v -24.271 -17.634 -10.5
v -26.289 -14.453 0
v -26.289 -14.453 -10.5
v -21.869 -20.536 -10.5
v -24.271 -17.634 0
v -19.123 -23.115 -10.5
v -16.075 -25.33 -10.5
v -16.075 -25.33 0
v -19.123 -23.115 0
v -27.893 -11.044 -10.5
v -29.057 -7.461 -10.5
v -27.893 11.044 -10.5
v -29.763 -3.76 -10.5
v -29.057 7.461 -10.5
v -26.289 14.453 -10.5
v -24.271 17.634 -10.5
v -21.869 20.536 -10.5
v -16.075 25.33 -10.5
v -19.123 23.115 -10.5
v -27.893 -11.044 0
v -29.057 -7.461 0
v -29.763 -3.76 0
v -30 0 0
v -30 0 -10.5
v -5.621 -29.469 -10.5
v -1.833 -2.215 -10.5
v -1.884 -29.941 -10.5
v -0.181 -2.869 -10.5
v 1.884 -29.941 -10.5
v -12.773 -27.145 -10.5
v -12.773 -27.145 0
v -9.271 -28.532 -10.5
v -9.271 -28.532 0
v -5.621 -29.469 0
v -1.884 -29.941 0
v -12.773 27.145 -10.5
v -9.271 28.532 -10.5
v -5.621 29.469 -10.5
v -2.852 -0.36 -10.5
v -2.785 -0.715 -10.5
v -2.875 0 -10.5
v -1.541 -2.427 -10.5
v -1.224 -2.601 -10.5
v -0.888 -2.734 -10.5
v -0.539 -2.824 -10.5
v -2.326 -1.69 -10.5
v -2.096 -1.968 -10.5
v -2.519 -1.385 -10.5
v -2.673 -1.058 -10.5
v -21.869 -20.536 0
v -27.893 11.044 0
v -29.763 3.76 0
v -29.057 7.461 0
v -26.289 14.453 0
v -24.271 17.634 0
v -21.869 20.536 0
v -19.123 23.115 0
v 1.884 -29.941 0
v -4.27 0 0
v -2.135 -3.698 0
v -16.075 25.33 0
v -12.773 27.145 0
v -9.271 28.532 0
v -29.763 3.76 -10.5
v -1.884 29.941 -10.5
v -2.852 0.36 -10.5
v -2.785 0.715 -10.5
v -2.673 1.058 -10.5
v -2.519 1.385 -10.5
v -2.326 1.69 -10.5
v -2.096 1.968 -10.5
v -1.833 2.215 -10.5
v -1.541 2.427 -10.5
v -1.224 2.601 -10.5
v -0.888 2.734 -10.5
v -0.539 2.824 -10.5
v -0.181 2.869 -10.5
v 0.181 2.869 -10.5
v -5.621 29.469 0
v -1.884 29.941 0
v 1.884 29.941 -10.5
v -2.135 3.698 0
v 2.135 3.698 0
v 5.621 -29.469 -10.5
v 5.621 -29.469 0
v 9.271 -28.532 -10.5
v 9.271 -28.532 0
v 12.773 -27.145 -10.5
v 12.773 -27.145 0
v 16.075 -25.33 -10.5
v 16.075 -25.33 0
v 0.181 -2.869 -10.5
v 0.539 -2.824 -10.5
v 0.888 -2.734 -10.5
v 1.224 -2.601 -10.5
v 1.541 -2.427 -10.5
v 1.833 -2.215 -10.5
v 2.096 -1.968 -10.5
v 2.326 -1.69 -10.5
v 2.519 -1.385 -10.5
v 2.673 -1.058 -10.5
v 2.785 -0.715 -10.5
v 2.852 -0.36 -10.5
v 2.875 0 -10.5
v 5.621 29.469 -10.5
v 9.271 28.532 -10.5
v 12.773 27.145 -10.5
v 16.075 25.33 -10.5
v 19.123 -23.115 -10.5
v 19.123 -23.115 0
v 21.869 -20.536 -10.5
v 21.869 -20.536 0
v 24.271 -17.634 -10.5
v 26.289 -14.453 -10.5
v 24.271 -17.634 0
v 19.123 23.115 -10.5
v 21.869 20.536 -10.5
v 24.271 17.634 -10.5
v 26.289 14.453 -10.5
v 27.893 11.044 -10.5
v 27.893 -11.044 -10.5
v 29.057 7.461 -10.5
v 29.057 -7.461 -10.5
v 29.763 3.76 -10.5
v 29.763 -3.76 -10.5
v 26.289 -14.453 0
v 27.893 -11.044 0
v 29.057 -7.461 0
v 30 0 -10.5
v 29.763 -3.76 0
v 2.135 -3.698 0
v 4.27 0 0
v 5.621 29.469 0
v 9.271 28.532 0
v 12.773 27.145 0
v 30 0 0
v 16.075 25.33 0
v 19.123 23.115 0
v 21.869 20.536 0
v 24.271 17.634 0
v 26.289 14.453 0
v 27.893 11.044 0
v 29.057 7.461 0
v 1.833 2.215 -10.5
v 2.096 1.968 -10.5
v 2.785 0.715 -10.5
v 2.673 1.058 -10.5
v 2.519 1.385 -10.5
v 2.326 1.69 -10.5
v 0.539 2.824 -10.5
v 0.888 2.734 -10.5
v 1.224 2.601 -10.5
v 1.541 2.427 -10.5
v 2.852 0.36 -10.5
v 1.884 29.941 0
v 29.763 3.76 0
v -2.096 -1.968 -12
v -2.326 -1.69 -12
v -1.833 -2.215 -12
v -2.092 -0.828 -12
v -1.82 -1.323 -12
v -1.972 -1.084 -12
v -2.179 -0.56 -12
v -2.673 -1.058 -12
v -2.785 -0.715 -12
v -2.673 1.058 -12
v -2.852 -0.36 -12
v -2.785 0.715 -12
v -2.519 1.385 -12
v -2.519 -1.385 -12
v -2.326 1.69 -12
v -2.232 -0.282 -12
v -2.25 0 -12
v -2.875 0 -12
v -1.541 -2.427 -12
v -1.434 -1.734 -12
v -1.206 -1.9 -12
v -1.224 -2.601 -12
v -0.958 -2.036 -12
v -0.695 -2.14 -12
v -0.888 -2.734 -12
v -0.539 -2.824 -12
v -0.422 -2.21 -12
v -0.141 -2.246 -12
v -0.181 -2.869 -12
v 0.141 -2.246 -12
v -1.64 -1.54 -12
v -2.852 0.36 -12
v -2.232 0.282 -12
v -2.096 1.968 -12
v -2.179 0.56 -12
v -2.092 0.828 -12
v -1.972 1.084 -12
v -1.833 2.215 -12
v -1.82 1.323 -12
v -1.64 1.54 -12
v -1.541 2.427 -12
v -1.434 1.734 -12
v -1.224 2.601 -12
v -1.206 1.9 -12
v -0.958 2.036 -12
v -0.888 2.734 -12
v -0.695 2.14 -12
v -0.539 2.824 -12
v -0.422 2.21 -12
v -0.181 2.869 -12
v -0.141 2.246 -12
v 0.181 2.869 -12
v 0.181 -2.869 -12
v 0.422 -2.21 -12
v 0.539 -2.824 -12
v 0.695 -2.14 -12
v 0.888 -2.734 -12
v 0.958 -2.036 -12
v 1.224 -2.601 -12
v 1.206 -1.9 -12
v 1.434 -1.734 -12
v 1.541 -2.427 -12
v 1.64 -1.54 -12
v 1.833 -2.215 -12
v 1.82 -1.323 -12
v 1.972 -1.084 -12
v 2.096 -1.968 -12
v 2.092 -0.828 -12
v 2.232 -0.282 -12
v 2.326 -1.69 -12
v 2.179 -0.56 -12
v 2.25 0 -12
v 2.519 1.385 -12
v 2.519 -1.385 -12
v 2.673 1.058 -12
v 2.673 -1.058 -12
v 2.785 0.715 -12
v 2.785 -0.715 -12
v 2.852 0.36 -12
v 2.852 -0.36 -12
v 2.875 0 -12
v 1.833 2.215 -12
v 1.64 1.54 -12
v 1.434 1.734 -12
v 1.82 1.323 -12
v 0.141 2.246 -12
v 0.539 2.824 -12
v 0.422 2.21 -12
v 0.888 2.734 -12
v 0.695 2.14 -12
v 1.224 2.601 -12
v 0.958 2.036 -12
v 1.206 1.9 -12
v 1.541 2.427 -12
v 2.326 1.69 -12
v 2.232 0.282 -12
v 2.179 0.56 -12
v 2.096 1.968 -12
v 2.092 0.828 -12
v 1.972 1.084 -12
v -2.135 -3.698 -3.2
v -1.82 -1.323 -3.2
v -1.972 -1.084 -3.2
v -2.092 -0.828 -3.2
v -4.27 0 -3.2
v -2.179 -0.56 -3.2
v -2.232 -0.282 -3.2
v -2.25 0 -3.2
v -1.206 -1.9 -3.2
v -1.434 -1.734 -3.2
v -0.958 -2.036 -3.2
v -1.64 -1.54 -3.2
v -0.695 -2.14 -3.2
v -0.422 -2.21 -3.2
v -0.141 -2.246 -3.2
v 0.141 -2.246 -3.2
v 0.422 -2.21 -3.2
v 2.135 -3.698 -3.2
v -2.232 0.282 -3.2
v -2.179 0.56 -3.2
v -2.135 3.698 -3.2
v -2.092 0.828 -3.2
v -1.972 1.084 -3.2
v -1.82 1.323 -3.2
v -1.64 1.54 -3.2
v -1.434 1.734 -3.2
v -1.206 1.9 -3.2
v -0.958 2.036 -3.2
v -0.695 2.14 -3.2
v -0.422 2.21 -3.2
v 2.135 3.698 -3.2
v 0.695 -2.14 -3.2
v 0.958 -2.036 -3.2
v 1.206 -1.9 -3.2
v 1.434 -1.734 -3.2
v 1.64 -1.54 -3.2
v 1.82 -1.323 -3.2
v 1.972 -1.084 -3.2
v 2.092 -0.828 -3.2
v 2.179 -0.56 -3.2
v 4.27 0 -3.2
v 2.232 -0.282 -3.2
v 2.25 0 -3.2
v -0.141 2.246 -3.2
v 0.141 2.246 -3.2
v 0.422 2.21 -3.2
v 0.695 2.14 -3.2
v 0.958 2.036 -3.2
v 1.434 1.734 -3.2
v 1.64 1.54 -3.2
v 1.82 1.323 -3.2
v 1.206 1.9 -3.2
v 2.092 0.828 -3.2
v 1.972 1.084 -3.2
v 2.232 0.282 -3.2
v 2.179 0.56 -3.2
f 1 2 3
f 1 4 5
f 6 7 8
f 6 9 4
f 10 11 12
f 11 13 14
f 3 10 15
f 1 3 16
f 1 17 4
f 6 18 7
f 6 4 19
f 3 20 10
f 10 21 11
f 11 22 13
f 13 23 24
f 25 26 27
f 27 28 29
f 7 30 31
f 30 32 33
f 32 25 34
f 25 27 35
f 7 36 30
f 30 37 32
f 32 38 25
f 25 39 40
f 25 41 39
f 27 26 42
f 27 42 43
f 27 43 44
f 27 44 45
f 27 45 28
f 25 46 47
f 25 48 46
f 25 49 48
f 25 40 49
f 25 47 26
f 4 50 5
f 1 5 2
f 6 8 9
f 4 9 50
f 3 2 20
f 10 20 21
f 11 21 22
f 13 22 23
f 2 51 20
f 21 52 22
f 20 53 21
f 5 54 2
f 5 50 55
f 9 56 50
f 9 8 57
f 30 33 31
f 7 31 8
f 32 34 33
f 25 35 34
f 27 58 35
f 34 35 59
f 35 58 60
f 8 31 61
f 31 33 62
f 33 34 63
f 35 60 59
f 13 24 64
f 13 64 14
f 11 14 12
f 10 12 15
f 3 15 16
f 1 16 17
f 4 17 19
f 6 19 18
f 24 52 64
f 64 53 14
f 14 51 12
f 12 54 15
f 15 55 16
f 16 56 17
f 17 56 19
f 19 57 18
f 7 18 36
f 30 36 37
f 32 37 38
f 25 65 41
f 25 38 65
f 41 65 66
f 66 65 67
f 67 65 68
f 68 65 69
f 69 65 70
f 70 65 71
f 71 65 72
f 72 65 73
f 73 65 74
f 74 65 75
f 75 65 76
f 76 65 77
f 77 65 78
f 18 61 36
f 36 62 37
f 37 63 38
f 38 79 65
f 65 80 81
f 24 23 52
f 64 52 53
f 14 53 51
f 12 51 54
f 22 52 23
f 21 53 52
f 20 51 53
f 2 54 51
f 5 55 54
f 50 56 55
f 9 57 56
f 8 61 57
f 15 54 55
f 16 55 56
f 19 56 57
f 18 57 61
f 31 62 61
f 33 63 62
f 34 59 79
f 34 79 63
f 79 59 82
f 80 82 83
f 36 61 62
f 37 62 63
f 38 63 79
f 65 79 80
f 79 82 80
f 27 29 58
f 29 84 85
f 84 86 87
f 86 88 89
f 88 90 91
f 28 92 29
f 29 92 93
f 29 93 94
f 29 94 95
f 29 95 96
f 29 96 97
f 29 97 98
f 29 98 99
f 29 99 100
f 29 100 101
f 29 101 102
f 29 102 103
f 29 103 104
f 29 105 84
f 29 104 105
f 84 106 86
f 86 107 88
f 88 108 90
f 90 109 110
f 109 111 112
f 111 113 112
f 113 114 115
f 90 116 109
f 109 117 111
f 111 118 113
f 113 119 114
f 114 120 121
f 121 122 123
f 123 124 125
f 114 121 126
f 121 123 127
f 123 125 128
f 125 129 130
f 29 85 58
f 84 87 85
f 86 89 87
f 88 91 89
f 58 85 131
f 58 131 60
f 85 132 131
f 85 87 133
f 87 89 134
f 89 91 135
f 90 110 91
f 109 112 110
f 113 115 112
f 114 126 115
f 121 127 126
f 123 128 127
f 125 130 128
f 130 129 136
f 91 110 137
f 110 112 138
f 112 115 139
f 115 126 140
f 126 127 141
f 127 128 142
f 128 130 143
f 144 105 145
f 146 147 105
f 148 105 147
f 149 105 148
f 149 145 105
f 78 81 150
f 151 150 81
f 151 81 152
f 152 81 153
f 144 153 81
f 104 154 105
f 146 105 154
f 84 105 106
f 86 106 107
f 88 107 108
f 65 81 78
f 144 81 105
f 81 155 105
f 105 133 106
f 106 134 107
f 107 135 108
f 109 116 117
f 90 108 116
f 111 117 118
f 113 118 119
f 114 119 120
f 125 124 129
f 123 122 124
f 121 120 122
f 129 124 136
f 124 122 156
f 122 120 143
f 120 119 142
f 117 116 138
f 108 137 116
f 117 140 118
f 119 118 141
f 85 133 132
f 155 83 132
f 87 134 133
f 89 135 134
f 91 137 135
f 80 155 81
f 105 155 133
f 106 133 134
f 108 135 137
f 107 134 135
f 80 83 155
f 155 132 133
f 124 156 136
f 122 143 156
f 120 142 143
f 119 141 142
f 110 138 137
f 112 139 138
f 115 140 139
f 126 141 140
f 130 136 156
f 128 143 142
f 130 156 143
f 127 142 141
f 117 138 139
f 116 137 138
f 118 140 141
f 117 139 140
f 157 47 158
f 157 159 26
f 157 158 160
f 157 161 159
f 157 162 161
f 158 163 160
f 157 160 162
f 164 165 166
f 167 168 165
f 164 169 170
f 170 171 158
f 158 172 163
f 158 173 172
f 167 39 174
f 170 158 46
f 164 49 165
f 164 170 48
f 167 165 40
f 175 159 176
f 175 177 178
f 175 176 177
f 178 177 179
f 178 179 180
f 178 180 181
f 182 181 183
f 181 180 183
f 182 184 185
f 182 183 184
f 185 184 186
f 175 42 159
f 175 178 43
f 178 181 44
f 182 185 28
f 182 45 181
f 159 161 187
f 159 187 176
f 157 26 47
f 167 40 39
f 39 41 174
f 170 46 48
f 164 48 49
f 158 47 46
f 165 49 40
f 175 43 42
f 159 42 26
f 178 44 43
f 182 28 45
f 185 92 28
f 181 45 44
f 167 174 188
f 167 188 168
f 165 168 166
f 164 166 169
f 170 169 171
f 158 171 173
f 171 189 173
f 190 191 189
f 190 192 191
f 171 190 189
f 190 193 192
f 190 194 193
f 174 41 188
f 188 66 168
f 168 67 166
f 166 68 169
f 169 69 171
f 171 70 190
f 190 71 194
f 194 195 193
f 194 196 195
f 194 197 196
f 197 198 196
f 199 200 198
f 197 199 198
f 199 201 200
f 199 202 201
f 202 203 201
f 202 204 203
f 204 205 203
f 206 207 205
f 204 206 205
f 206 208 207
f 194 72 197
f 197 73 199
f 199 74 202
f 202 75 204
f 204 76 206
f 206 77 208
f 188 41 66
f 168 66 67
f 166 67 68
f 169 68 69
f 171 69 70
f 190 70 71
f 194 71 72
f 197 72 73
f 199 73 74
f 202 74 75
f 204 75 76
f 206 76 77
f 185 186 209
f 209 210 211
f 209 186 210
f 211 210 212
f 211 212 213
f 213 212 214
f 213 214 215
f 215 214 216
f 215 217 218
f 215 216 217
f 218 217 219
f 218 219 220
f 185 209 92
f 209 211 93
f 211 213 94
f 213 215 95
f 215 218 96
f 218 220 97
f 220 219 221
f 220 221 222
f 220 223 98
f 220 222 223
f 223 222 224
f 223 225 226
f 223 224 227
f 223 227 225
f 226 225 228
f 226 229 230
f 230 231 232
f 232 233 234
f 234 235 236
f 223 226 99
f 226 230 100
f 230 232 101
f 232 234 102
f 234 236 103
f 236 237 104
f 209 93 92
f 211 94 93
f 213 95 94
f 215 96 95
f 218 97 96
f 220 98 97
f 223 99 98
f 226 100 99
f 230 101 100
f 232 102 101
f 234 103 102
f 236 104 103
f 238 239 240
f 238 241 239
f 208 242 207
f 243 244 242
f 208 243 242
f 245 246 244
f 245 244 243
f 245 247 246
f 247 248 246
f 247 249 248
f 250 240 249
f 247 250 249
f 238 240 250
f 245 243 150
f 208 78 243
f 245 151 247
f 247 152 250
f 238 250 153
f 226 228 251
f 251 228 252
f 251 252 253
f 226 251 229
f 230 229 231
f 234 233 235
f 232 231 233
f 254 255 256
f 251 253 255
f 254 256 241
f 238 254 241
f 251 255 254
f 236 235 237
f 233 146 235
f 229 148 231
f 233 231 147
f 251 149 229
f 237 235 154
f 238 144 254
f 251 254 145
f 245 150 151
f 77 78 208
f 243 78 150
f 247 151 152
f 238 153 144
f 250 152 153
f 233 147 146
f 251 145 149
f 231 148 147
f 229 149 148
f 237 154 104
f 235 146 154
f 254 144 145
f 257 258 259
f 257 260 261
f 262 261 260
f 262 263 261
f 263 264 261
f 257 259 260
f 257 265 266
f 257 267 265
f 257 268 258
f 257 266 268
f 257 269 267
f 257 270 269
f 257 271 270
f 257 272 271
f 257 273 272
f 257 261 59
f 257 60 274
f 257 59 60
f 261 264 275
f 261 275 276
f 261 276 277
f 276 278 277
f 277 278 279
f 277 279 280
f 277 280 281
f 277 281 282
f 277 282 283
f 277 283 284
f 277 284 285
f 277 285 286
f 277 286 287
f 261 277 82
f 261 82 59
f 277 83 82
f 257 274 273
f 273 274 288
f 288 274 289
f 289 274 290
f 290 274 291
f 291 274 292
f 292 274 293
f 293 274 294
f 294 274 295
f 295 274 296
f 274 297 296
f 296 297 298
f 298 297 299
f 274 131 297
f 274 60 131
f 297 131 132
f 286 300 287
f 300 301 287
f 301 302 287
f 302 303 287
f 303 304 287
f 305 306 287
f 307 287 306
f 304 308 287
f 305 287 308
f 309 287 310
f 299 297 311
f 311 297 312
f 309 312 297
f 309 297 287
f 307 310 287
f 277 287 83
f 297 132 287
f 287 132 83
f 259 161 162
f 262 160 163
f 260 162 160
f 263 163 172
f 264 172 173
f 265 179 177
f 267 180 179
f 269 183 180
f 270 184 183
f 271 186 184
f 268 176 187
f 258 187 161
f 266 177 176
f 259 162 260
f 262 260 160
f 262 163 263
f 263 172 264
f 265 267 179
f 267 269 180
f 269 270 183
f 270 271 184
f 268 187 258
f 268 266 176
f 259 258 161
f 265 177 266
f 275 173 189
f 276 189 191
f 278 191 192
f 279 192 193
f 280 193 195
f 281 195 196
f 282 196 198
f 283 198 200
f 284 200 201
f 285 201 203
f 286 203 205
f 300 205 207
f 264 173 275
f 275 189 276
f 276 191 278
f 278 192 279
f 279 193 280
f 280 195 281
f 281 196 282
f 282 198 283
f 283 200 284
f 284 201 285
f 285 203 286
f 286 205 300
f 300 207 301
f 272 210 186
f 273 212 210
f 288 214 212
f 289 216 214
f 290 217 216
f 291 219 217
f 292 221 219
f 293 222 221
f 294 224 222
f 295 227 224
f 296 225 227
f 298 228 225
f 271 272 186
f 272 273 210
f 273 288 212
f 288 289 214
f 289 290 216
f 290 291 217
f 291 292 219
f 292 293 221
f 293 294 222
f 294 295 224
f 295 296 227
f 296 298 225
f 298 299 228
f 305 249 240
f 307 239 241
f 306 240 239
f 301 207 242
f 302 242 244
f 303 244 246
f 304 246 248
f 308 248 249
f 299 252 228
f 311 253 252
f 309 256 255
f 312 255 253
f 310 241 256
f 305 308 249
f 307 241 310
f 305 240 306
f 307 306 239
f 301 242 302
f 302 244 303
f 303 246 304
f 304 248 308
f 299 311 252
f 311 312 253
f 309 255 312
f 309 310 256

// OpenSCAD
$fn = 50;

difference() {
	union() {
		translate(v = [0, 0, -10.5]) {
			cylinder(h = 10.5, r = 30.0);
		}
		#translate(v = [0, 0, -12.0]) {
			cylinder(h = 12, r = 2.875);
		}
	}
	union() {
		translate(v = [0, 0, 0]) {
			rotate(a = [0, 0, 0]) {
				difference() {
					union() {
						translate(v = [0, 0, -3.2]) {
							linear_extrude(height = 3.2) {
								polygon(points = [[4.2698, 0.0], [2.1349000000000005, 3.697755269078796], [-2.134899999999999, 3.6977552690787965], [-4.2698, 5.228996902999369e-16], [-2.134900000000002, -3.6977552690787956], [2.1348999999999974, -3.697755269078798]]);
							}
						}
					}
					union();
				}
			}
		}
		#translate(v = [0, 0, -100.0]) {
			cylinder(h = 200, r = 2.25);
		}
	}
}
